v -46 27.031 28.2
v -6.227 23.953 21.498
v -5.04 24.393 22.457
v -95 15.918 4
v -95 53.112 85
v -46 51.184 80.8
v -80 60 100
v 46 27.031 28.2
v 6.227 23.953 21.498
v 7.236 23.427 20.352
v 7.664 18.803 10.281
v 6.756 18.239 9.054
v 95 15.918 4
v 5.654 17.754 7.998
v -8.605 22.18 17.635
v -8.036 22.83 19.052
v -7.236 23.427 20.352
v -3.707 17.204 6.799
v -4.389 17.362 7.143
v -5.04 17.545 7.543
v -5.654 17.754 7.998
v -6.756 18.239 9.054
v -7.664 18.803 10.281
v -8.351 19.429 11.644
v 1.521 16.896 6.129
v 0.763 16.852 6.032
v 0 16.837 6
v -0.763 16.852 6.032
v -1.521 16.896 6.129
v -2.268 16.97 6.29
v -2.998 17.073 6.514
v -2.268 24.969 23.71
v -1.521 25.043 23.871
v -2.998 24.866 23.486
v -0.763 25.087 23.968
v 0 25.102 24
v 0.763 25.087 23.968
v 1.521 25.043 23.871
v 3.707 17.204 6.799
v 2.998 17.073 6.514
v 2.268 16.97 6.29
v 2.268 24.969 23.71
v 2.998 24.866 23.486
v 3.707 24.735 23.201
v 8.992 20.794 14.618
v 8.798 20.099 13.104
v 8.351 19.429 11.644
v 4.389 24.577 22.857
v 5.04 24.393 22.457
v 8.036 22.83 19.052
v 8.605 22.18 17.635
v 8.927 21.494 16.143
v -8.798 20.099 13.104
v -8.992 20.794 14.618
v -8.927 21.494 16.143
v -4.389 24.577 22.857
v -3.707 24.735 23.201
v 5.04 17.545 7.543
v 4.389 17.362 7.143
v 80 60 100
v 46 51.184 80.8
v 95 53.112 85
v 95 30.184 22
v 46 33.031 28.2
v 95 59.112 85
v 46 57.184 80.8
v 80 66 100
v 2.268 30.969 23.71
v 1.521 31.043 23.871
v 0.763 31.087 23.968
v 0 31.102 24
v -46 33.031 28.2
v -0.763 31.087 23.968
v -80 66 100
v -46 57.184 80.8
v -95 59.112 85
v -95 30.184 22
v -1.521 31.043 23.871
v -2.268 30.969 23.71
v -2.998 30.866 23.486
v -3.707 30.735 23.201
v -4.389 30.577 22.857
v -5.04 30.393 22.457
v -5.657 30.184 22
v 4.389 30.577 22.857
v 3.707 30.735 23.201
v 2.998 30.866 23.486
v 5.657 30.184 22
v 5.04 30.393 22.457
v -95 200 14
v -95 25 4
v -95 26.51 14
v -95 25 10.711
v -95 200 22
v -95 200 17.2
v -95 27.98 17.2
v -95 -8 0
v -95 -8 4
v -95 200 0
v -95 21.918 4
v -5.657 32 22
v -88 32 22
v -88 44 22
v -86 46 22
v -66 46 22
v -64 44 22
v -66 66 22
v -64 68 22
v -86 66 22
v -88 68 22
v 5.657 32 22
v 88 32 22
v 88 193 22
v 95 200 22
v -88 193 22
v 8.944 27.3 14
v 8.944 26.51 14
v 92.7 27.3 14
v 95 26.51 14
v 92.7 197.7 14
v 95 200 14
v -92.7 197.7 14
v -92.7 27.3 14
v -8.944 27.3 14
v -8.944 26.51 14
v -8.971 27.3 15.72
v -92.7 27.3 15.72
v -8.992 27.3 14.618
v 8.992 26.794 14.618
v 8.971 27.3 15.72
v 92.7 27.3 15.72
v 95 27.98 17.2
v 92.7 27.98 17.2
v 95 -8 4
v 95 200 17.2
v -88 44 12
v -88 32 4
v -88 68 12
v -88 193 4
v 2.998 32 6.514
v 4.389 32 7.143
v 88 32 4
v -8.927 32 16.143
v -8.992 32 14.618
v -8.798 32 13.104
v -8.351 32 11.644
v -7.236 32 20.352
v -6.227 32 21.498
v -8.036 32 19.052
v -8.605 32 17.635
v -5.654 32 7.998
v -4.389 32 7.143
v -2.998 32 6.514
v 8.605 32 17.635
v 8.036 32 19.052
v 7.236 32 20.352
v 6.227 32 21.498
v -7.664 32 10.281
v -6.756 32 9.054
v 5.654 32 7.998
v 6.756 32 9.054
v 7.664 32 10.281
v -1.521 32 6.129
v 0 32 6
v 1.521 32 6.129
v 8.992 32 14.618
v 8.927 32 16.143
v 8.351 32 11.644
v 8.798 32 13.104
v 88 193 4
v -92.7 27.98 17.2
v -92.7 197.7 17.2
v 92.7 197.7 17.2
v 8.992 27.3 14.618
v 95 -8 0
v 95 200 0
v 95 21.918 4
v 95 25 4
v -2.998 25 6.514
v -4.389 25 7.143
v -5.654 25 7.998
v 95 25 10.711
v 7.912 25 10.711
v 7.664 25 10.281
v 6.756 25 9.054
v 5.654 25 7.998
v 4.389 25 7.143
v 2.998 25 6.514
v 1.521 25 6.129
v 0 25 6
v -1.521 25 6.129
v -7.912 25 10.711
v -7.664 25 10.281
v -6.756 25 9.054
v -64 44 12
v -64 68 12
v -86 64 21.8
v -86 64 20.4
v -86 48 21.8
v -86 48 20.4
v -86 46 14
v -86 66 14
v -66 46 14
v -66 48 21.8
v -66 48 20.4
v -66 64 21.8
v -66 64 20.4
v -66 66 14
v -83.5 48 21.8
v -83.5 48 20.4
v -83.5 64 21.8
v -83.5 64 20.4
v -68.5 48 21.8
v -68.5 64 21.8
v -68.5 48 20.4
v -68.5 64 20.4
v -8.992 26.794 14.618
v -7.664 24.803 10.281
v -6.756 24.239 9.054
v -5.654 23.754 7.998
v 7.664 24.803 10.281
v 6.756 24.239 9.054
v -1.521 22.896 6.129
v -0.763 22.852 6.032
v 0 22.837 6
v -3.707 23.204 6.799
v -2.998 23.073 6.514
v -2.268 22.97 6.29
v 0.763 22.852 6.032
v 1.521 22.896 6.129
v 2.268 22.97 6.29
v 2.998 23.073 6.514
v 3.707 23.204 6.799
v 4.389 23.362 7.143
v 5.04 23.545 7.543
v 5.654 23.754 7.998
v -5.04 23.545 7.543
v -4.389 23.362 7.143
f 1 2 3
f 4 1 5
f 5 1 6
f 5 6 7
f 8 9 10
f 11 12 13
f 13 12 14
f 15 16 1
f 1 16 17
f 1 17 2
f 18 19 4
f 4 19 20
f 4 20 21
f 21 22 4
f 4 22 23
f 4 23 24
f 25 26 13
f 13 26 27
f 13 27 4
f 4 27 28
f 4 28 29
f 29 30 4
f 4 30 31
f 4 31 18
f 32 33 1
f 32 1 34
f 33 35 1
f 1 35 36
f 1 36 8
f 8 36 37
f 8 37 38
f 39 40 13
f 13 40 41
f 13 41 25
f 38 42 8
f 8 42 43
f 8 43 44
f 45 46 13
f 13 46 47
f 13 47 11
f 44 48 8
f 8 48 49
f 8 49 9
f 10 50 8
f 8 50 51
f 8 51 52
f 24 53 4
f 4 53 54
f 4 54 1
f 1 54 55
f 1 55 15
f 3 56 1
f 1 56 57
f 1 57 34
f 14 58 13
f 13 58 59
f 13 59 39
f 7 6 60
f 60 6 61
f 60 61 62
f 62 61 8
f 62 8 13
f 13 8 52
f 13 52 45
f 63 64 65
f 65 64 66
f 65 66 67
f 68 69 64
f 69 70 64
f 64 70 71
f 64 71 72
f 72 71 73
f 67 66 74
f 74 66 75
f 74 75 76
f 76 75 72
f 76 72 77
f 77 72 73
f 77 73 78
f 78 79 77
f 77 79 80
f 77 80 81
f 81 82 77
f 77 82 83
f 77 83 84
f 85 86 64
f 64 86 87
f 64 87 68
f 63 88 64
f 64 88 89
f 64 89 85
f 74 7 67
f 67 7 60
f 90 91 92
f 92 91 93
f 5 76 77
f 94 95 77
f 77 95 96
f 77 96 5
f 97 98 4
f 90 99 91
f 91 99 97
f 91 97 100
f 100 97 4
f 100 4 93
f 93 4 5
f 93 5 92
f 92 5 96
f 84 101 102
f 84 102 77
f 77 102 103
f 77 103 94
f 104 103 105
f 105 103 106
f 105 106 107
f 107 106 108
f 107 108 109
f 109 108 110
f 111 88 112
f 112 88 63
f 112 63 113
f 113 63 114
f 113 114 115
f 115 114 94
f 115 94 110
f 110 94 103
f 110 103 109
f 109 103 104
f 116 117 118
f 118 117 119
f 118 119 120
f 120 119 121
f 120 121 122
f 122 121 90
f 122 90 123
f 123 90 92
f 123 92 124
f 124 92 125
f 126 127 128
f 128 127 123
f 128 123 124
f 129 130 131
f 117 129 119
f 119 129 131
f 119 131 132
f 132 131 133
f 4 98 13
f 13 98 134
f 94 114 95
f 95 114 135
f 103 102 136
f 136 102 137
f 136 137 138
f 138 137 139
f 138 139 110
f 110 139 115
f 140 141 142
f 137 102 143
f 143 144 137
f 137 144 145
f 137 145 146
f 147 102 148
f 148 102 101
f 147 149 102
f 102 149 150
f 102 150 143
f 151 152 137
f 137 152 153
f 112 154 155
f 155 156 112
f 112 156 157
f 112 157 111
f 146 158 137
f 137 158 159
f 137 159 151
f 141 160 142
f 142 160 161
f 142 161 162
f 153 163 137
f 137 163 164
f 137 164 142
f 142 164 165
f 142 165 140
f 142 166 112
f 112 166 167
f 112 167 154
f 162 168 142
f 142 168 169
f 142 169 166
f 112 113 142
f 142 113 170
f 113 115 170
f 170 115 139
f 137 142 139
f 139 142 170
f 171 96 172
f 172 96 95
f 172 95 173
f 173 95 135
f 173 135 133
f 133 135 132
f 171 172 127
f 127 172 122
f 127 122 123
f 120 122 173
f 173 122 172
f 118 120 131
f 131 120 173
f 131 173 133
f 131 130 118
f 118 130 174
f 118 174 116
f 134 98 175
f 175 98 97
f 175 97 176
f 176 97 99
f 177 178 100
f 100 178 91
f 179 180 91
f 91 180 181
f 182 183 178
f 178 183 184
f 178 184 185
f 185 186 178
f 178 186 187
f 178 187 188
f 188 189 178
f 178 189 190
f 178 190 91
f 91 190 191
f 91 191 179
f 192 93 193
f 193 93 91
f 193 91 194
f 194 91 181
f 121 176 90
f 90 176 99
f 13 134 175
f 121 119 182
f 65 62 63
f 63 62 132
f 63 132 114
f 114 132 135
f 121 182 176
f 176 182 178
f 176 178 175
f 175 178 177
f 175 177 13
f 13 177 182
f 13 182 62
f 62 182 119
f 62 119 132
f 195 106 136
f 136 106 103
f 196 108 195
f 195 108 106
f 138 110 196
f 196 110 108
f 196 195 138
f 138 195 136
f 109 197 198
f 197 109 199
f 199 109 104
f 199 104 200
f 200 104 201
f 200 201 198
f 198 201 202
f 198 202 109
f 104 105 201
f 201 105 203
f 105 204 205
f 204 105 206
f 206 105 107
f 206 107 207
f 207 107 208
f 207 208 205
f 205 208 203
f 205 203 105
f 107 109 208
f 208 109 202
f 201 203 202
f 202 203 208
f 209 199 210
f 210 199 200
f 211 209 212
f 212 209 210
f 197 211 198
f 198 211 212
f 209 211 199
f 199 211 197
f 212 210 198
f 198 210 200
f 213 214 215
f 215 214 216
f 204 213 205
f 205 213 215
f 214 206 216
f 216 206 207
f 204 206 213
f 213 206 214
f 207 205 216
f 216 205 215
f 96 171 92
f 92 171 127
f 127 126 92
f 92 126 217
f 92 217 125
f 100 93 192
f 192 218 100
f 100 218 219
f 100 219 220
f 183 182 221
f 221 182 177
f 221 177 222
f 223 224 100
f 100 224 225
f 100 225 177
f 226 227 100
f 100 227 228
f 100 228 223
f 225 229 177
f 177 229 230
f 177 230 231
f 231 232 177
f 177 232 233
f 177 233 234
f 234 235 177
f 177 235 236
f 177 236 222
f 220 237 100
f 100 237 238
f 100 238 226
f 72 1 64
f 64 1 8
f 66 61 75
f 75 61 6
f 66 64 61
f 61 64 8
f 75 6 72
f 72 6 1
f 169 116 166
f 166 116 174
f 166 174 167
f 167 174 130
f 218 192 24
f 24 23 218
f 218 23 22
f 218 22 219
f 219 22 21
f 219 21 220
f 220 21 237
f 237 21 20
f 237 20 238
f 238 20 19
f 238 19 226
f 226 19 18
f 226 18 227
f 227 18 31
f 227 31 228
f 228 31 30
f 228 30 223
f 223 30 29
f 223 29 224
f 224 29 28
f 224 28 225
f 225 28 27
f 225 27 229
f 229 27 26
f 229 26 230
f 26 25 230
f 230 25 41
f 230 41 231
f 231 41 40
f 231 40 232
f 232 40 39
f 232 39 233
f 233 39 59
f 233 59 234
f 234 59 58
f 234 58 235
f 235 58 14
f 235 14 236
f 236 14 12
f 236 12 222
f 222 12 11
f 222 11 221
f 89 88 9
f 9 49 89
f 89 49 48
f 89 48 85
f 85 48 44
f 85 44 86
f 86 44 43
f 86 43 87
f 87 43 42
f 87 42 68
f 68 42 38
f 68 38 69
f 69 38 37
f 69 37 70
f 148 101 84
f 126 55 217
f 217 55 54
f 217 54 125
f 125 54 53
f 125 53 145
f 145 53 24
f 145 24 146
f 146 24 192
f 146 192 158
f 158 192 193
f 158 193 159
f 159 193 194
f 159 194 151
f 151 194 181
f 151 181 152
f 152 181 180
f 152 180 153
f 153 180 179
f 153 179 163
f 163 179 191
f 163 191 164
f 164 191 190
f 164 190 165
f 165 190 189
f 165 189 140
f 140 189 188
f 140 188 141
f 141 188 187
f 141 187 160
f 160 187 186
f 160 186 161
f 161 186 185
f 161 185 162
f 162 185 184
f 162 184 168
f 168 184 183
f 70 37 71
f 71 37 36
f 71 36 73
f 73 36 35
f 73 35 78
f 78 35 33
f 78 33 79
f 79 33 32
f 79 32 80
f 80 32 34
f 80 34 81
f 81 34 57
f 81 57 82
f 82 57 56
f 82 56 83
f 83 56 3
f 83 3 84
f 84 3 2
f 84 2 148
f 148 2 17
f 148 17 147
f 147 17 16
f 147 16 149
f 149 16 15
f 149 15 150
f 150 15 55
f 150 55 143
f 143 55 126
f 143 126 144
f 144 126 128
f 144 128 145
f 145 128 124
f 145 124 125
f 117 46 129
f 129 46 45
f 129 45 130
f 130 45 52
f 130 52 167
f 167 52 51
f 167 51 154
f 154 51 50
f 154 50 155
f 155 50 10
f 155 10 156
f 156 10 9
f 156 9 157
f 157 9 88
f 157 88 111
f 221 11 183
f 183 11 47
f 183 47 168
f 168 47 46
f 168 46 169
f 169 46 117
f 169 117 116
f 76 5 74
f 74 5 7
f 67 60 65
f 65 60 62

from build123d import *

# Parameters (mm, degrees)
F_190_X_200_TRAY_FLOOR_SKETCH_W                       = 190
F_190_X_200_TRAY_FLOOR_SKETCH_H                       = 208
F_4_MM_TRAY_FLOOR_DEPTH                               = 4
ELECTRONICS_COMPARTMENT_WALL_SKETCH_W                 = 190
ELECTRONICS_COMPARTMENT_WALL_SKETCH_H                 = 175
ELECTRONICS_COMPARTMENT_WALL_SKETCH_W_2               = 176
ELECTRONICS_COMPARTMENT_WALL_SKETCH_H_2               = 161
F_22_MM_PERIMETER_WALLS_DEPTH                         = 22
F_3_2_START                                           = 17.2
EXTERNAL_WALL_CORD_GASKET_GROOVE_SKETCH_W             = 192
EXTERNAL_WALL_CORD_GASKET_GROOVE_SKETCH_H             = 177
EXTERNAL_WALL_CORD_GASKET_GROOVE_SKETCH_W_2           = 185.4
EXTERNAL_WALL_CORD_GASKET_GROOVE_SKETCH_H_2           = 170.4
F_3_2_HIGH_X_2_3_DEEP_EXTERNAL_PERIMETER_G_DEPTH      = 3.2
F_24_MM_GPS_ANTENNA_SHELF_SKETCH_W                    = 24
F_24_MM_GPS_ANTENNA_SHELF_SKETCH_H                    = 24
F_2_MM_GPS_ANTENNA_SHELF_DEPTH                        = 2
F_20_MM_GPS_ANTENNA_GUIDE_RING_SKETCH_W               = 24
F_20_MM_GPS_ANTENNA_GUIDE_RING_SKETCH_H               = 24
F_20_MM_GPS_ANTENNA_GUIDE_RING_SKETCH_W_2             = 20
F_20_MM_GPS_ANTENNA_GUIDE_RING_SKETCH_H_2             = 20
F_8_5_MM_GPS_ANTENNA_GUIDE_RING_DEPTH                 = 8.5
LEFT_GPS_ANTENNA_SNAP_LIP_SKETCH_W                    = 2.5
LEFT_GPS_ANTENNA_SNAP_LIP_SKETCH_H                    = 16
LEFT_GPS_ANTENNA_SNAP_LIP_DEPTH                       = 1.4
RIGHT_GPS_ANTENNA_SNAP_LIP_SKETCH_W                   = 2.5
RIGHT_GPS_ANTENNA_SNAP_LIP_SKETCH_H                   = 16
RIGHT_GPS_ANTENNA_SNAP_LIP_DEPTH                      = 1.4
F_190_MM_WIDE_ANGLED_DISPLAY_BULKHEAD_DEPTH           = 95
F_190_MM_WIDE_ANGLED_DISPLAY_BULKHEAD_DEPTH_BACK      = 95
F_92_X_58_MM_DISPLAY_OPENING_DEPTH                    = 46
F_92_X_58_MM_DISPLAY_OPENING_DEPTH_BACK               = 46
F_18_MM_FRONT_12_V_AND_SENSOR_HARNESS_PASS_DEPTH      = 40
F_18_MM_FRONT_12_V_AND_SENSOR_HARNESS_PASS_DEPTH_BACK = 40
F_18_MM_FRONT_HARNESS_GROMMET_SKETCH_R                = 9
LEFT_SCREEN_HOLDER_CORNER_CHAMFER_DEPTH               = 110
LEFT_SCREEN_HOLDER_CORNER_CHAMFER_DEPTH_BACK          = 110
RIGHT_SCREEN_HOLDER_CORNER_CHAMFER_DEPTH              = 110
RIGHT_SCREEN_HOLDER_CORNER_CHAMFER_DEPTH_BACK         = 110


with BuildPart() as part:
    # 190 x 200 Tray Floor Sketch → 4 mm Tray Floor (new body)
    with BuildSketch(Plane.XY):
        with Locations((0, 96)):
            Rectangle(F_190_X_200_TRAY_FLOOR_SKETCH_W, F_190_X_200_TRAY_FLOOR_SKETCH_H)
    extrude(amount=F_4_MM_TRAY_FLOOR_DEPTH)

    # Electronics Compartment Wall Sketch → 22 mm Perimeter Walls (add)
    with BuildSketch(Plane.XY):
        with Locations((0, 112.5)):
            Rectangle(ELECTRONICS_COMPARTMENT_WALL_SKETCH_W, ELECTRONICS_COMPARTMENT_WALL_SKETCH_H)
        with Locations((0, 112.5)):
            Rectangle(ELECTRONICS_COMPARTMENT_WALL_SKETCH_W_2, ELECTRONICS_COMPARTMENT_WALL_SKETCH_H_2, mode=Mode.SUBTRACT)
    extrude(amount=F_22_MM_PERIMETER_WALLS_DEPTH)

    # External Wall Cord Gasket Groove Sketch → 3.2 High x 2.3 Deep External Perimeter Gasket Groove (cut)
    with BuildSketch(Plane.XY.offset(F_3_2_START)):
        with Locations((0, 112.5)):
            Rectangle(EXTERNAL_WALL_CORD_GASKET_GROOVE_SKETCH_W, EXTERNAL_WALL_CORD_GASKET_GROOVE_SKETCH_H)
        with Locations((0, 112.5)):
            Rectangle(EXTERNAL_WALL_CORD_GASKET_GROOVE_SKETCH_W_2, EXTERNAL_WALL_CORD_GASKET_GROOVE_SKETCH_H_2, mode=Mode.SUBTRACT)
    extrude(amount=-F_3_2_HIGH_X_2_3_DEEP_EXTERNAL_PERIMETER_G_DEPTH, mode=Mode.SUBTRACT)

    # 24 mm GPS Antenna Shelf Sketch → 2 mm GPS Antenna Shelf (add)
    with BuildSketch(Plane.XY.offset(12)):
        with Locations((-76, 56)):
            Rectangle(F_24_MM_GPS_ANTENNA_SHELF_SKETCH_W, F_24_MM_GPS_ANTENNA_SHELF_SKETCH_H)
    extrude(amount=F_2_MM_GPS_ANTENNA_SHELF_DEPTH)

    # 20 mm GPS Antenna Guide Ring Sketch → 8.5 mm GPS Antenna Guide Ring (add)
    with BuildSketch(Plane.XY.offset(13.5)):
        with Locations((-76, 56)):
            Rectangle(F_20_MM_GPS_ANTENNA_GUIDE_RING_SKETCH_W, F_20_MM_GPS_ANTENNA_GUIDE_RING_SKETCH_H)
        with Locations((-76, 56)):
            Rectangle(F_20_MM_GPS_ANTENNA_GUIDE_RING_SKETCH_W_2, F_20_MM_GPS_ANTENNA_GUIDE_RING_SKETCH_H_2, mode=Mode.SUBTRACT)
    extrude(amount=F_8_5_MM_GPS_ANTENNA_GUIDE_RING_DEPTH)

    # Left GPS Antenna Snap Lip Sketch → Left GPS Antenna Snap Lip (add)
    with BuildSketch(Plane.XY.offset(20.4)):
        with Locations((-84.75, 56)):
            Rectangle(LEFT_GPS_ANTENNA_SNAP_LIP_SKETCH_W, LEFT_GPS_ANTENNA_SNAP_LIP_SKETCH_H)
    extrude(amount=LEFT_GPS_ANTENNA_SNAP_LIP_DEPTH)

    # Right GPS Antenna Snap Lip Sketch → Right GPS Antenna Snap Lip (add)
    with BuildSketch(Plane.XY.offset(20.4)):
        with Locations((-67.25, 56)):
            Rectangle(RIGHT_GPS_ANTENNA_SNAP_LIP_SKETCH_W, RIGHT_GPS_ANTENNA_SNAP_LIP_SKETCH_H)
    extrude(amount=RIGHT_GPS_ANTENNA_SNAP_LIP_DEPTH)

    # Angled Display Bulkhead Side Profile → 190 mm Wide Angled Display Bulkhead (add, two sides: drawn at the far end of the back side and taken through both)
    with BuildSketch(Plane(origin=(0, 0, 0), x_dir=(0, 0, -1), z_dir=(1, 0, 0)).offset(-F_190_MM_WIDE_ANGLED_DISPLAY_BULKHEAD_DEPTH_BACK)):
        Polygon((-2, 15), (-2, 21), (-100, 66), (-100, 60), align=None)
    extrude(amount=F_190_MM_WIDE_ANGLED_DISPLAY_BULKHEAD_DEPTH + F_190_MM_WIDE_ANGLED_DISPLAY_BULKHEAD_DEPTH_BACK)

    # 92 x 58 Display Opening Side Profile → 92 x 58 mm Display Opening (cut, two sides: drawn at the far end of the back side and taken through both)
    with BuildSketch(Plane(origin=(0, 0, 0), x_dir=(0, 0, -1), z_dir=(1, 0, 0)).offset(-F_92_X_58_MM_DISPLAY_OPENING_DEPTH_BACK)):
        Polygon((-28.2, 25), (-28.2, 35), (-80.8, 59.2), (-80.8, 49.2), align=None)
    extrude(amount=F_92_X_58_MM_DISPLAY_OPENING_DEPTH + F_92_X_58_MM_DISPLAY_OPENING_DEPTH_BACK, mode=Mode.SUBTRACT)

    # 18 mm Front Harness Grommet Sketch → 18 mm Front 12 V and Sensor Harness Passage (cut, two sides: drawn at the far end of the back side and taken through both)
    with BuildSketch(Plane(origin=(0, 0, 0), x_dir=(1, 0, 0), z_dir=(0, 1, 0)).offset(-F_18_MM_FRONT_12_V_AND_SENSOR_HARNESS_PASS_DEPTH_BACK)):
        with Locations(Location((0, -15, 0), (0, 0, 90))):
            Circle(F_18_MM_FRONT_HARNESS_GROMMET_SKETCH_R)
    extrude(amount=F_18_MM_FRONT_12_V_AND_SENSOR_HARNESS_PASS_DEPTH + F_18_MM_FRONT_12_V_AND_SENSOR_HARNESS_PASS_DEPTH_BACK, mode=Mode.SUBTRACT)

    # Left Screen Holder Corner Chamfer Sketch → Left Screen Holder Corner Chamfer (cut, two sides: drawn at the far end of the back side and taken through both)
    with BuildSketch(Plane(origin=(0, 0, 0), x_dir=(1, 0, 0), z_dir=(0, 1, 0)).offset(-LEFT_SCREEN_HOLDER_CORNER_CHAMFER_DEPTH_BACK)):
        Polygon((-95, -100), (-80, -100), (-95, -85), align=None)
    extrude(amount=LEFT_SCREEN_HOLDER_CORNER_CHAMFER_DEPTH + LEFT_SCREEN_HOLDER_CORNER_CHAMFER_DEPTH_BACK, mode=Mode.SUBTRACT)

    # Right Screen Holder Corner Chamfer Sketch → Right Screen Holder Corner Chamfer (cut, two sides: drawn at the far end of the back side and taken through both)
    with BuildSketch(Plane(origin=(0, 0, 0), x_dir=(1, 0, 0), z_dir=(0, 1, 0)).offset(-RIGHT_SCREEN_HOLDER_CORNER_CHAMFER_DEPTH_BACK)):
        Polygon((95, -100), (80, -100), (95, -85), align=None)
    extrude(amount=RIGHT_SCREEN_HOLDER_CORNER_CHAMFER_DEPTH + RIGHT_SCREEN_HOLDER_CORNER_CHAMFER_DEPTH_BACK, mode=Mode.SUBTRACT)


solid = part.part
